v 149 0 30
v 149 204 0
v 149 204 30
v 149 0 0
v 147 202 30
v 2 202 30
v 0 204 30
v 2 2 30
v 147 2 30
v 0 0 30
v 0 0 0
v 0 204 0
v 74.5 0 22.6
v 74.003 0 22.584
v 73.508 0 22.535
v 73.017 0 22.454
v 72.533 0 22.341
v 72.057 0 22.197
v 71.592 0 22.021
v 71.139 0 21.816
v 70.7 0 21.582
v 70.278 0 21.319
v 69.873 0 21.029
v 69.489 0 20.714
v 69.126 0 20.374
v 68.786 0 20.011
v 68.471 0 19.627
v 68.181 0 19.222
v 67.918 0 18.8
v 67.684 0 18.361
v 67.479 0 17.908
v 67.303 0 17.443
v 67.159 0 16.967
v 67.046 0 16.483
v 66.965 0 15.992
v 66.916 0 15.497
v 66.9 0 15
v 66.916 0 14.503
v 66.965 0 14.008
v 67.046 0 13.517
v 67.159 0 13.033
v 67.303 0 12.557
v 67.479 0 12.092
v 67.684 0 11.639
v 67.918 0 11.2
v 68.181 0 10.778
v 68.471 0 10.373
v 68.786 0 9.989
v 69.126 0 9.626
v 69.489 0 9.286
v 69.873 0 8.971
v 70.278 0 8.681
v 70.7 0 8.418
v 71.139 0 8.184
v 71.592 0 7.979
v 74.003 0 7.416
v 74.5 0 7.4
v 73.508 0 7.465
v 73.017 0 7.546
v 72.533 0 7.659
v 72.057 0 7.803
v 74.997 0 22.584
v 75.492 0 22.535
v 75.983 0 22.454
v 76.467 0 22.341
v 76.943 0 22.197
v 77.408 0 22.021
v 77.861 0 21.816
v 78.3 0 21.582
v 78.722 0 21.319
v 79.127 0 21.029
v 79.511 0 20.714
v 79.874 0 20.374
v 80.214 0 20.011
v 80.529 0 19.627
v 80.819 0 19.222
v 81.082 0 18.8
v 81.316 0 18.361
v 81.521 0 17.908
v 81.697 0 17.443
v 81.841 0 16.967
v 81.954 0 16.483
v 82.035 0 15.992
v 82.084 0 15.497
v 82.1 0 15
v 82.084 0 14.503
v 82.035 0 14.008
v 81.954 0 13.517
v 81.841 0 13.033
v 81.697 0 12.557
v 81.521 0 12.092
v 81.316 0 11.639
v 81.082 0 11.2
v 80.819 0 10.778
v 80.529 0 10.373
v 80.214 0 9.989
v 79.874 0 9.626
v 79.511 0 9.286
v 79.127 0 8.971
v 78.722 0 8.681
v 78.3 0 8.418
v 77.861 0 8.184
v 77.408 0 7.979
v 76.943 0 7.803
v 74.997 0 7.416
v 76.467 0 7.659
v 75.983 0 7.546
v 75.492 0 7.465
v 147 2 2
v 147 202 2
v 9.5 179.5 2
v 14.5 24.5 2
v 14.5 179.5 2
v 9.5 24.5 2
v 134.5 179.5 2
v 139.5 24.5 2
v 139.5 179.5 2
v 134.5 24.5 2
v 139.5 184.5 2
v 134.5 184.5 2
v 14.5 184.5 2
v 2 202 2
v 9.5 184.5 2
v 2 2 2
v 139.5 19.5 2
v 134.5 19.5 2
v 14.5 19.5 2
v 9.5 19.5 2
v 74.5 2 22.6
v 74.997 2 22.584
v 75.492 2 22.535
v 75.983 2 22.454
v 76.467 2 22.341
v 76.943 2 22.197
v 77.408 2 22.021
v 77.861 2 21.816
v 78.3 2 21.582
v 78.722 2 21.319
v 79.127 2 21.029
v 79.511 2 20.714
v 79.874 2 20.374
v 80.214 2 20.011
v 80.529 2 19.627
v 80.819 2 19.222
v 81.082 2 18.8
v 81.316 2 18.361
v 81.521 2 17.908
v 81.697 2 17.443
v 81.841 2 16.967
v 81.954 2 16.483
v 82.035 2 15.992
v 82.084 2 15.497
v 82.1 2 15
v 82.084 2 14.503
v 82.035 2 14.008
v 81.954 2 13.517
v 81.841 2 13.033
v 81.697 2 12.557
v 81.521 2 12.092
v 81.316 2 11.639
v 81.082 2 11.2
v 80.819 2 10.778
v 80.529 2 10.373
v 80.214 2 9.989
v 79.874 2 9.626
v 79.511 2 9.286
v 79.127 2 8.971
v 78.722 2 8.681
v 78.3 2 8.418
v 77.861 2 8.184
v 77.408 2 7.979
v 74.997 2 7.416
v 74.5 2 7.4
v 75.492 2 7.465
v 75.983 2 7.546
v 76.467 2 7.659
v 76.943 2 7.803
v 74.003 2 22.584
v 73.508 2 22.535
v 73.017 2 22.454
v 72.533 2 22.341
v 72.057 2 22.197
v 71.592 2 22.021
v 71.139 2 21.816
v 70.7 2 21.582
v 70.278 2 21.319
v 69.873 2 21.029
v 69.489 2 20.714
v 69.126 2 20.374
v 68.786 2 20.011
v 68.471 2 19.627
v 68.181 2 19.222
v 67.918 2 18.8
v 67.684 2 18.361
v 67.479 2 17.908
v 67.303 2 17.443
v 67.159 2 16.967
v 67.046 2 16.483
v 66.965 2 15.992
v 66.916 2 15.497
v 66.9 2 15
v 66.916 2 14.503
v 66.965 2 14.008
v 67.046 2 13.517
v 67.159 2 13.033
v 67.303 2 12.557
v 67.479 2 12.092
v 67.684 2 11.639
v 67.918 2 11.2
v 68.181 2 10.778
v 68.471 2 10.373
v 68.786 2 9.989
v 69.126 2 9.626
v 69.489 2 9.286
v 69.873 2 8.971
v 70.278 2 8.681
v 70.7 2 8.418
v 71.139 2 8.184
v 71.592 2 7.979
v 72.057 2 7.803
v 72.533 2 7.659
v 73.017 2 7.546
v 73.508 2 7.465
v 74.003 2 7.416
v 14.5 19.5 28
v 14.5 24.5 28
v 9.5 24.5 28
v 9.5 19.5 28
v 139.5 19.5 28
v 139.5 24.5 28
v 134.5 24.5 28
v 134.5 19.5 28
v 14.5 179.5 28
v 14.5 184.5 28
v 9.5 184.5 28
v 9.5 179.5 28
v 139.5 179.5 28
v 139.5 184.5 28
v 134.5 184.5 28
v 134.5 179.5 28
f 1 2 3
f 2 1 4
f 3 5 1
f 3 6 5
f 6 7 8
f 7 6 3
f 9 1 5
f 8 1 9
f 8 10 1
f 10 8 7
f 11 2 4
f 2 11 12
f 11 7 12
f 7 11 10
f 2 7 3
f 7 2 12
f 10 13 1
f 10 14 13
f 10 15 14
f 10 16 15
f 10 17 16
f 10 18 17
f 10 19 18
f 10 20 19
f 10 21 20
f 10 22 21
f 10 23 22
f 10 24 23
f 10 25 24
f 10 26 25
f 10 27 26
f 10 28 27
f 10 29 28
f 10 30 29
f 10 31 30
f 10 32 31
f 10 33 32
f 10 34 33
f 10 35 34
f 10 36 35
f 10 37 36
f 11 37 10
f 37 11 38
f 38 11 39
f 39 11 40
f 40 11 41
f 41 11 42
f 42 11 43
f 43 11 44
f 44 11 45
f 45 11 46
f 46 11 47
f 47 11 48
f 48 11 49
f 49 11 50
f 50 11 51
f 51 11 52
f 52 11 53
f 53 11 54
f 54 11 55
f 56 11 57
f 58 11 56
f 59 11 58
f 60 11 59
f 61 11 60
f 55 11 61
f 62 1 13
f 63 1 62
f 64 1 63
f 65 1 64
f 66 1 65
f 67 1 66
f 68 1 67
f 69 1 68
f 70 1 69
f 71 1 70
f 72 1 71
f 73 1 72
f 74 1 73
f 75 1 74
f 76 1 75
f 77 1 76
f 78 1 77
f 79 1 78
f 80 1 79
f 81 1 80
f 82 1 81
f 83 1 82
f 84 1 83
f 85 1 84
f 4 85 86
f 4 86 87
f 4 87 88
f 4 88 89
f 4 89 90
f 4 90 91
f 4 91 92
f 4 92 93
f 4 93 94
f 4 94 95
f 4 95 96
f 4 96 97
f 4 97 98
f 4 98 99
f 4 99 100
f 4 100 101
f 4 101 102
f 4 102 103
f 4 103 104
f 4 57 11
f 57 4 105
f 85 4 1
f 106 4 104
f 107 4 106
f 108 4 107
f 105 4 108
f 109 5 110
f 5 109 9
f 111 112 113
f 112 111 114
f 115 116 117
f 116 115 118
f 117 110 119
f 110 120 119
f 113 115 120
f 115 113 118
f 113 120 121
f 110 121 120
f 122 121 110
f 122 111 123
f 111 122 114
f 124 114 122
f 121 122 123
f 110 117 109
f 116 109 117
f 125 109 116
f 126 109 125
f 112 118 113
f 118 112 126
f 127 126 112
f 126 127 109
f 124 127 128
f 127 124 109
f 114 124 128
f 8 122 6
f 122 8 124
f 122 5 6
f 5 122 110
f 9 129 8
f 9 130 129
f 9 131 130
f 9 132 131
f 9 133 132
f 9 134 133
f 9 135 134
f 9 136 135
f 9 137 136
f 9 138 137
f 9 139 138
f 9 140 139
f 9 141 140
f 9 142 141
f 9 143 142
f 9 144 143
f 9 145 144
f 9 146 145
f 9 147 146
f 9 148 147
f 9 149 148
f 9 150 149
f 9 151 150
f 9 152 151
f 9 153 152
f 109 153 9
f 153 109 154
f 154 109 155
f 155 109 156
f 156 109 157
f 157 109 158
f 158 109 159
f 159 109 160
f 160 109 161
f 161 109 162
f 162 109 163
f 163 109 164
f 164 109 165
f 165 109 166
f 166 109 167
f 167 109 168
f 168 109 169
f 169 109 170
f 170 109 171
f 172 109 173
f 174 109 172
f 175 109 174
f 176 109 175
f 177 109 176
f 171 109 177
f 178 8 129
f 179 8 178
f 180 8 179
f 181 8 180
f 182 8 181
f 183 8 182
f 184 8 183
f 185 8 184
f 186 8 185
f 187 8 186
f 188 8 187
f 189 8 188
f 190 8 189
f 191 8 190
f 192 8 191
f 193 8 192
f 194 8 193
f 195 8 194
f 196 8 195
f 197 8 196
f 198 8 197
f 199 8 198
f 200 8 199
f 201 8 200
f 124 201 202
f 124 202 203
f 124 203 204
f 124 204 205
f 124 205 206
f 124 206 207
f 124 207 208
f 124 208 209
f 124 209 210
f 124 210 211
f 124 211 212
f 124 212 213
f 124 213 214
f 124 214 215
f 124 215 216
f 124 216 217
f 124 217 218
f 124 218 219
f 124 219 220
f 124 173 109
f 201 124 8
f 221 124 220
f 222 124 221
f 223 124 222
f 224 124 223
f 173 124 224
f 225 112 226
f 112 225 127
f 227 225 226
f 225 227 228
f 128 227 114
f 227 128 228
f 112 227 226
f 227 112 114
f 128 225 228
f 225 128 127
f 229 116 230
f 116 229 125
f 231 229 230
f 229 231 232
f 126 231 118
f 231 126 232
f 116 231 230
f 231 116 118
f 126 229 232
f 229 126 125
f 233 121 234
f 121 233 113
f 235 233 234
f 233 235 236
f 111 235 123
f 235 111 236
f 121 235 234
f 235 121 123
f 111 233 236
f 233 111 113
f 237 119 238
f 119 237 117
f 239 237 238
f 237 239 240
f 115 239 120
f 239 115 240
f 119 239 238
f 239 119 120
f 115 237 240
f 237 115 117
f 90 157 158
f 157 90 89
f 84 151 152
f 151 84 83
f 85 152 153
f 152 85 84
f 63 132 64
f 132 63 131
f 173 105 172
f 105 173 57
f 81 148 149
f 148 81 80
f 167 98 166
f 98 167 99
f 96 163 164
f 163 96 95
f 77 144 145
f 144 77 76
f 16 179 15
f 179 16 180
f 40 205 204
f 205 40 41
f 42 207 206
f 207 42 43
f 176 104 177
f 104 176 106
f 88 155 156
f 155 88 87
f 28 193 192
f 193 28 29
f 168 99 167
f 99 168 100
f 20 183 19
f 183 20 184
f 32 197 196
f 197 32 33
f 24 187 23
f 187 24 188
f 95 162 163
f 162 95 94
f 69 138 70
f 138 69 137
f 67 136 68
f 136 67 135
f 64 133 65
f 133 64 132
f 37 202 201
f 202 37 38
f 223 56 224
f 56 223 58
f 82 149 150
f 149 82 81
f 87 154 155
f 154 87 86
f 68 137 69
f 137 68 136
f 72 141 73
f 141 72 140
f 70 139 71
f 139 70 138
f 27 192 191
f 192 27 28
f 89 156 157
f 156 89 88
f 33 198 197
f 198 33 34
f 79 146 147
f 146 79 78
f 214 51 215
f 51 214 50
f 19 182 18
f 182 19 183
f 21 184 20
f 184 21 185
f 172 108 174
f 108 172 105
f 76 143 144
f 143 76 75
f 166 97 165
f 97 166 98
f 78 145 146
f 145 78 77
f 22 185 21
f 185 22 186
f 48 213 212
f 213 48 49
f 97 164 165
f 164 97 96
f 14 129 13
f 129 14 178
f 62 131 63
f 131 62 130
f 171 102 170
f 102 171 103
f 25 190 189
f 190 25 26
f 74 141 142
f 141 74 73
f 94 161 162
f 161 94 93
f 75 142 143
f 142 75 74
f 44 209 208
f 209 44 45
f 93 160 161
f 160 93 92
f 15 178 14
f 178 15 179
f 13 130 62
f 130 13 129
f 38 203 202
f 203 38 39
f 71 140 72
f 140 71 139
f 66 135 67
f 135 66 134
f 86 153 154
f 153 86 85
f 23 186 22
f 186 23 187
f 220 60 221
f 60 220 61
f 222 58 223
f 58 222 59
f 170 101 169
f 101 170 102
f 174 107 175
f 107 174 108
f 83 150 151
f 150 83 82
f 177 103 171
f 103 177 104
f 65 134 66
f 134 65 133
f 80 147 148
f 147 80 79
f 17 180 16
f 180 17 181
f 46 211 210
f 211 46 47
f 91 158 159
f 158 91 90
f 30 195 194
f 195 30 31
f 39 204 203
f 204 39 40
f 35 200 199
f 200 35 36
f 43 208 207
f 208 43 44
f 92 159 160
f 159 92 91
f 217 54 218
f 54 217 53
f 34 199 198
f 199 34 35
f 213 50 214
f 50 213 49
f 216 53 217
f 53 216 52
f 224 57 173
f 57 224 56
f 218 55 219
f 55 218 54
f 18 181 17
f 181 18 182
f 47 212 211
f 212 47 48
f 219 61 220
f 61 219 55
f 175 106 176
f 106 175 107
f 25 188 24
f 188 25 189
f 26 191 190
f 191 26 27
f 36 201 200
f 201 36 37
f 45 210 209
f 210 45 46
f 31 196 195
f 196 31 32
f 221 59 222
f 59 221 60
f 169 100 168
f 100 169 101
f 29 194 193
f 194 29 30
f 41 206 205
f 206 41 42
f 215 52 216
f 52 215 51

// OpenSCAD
$fa=1; $fs=0.5;


// We want to have an empty box,
// inner size

box_inner_x = 145;
box_inner_y = 200;
box_inner_height = 28;
wall_thickness = 2;
standoff_size = 5;

// M7 Screw, Medium Fit Clearance Hole (https://engineersbible.com/clearance-hole-metric/)
encoder_diameter = 7.6;



difference(){
  box_with_standoffs();
  cutout_encoder();
}

module cutout_encoder() {
    translate([((box_inner_x+(2*wall_thickness)))/2, 
                 wall_thickness,
                 ((box_inner_height+wall_thickness))/2]) {
        rotate(a=[90,0,0]) {
            cylinder(wall_thickness, encoder_diameter, encoder_diameter);
        }
}
}


// The Box with standoffs
module box_with_standoffs() {
emptybox();
// We need for standoff, their center is 20mm away from the long side, 10mm away from the short
translate([wall_thickness + 10 - (standoff_size/2), wall_thickness + 20 - (standoff_size/2),0]) standoff();
translate([wall_thickness + box_inner_x - 10 - (standoff_size/2), wall_thickness + 20 - (standoff_size/2),0]) standoff();
translate([wall_thickness + 10 - (standoff_size/2), wall_thickness + box_inner_y - 20 - (standoff_size/2),0]) standoff();
translate([wall_thickness + box_inner_x - 10 - (standoff_size/2), wall_thickness + box_inner_y - 20 - (standoff_size/2),0]) standoff();
}
// standoff
module standoff() {
  cube([standoff_size, standoff_size, box_inner_height]) ;  
}


// empty box
module emptybox() {
difference() {
color([1,0,0]) basebox();
translate ([wall_thickness,wall_thickness,wall_thickness])color([0,1,0])box_cutout();
}
}

// basebox
module basebox() {
    cube([box_inner_x + wall_thickness*2, box_inner_y + wall_thickness*2, box_inner_height + wall_thickness]);
}

// basebox
module box_cutout() {
    cube([box_inner_x, box_inner_y, box_inner_height]);
}
